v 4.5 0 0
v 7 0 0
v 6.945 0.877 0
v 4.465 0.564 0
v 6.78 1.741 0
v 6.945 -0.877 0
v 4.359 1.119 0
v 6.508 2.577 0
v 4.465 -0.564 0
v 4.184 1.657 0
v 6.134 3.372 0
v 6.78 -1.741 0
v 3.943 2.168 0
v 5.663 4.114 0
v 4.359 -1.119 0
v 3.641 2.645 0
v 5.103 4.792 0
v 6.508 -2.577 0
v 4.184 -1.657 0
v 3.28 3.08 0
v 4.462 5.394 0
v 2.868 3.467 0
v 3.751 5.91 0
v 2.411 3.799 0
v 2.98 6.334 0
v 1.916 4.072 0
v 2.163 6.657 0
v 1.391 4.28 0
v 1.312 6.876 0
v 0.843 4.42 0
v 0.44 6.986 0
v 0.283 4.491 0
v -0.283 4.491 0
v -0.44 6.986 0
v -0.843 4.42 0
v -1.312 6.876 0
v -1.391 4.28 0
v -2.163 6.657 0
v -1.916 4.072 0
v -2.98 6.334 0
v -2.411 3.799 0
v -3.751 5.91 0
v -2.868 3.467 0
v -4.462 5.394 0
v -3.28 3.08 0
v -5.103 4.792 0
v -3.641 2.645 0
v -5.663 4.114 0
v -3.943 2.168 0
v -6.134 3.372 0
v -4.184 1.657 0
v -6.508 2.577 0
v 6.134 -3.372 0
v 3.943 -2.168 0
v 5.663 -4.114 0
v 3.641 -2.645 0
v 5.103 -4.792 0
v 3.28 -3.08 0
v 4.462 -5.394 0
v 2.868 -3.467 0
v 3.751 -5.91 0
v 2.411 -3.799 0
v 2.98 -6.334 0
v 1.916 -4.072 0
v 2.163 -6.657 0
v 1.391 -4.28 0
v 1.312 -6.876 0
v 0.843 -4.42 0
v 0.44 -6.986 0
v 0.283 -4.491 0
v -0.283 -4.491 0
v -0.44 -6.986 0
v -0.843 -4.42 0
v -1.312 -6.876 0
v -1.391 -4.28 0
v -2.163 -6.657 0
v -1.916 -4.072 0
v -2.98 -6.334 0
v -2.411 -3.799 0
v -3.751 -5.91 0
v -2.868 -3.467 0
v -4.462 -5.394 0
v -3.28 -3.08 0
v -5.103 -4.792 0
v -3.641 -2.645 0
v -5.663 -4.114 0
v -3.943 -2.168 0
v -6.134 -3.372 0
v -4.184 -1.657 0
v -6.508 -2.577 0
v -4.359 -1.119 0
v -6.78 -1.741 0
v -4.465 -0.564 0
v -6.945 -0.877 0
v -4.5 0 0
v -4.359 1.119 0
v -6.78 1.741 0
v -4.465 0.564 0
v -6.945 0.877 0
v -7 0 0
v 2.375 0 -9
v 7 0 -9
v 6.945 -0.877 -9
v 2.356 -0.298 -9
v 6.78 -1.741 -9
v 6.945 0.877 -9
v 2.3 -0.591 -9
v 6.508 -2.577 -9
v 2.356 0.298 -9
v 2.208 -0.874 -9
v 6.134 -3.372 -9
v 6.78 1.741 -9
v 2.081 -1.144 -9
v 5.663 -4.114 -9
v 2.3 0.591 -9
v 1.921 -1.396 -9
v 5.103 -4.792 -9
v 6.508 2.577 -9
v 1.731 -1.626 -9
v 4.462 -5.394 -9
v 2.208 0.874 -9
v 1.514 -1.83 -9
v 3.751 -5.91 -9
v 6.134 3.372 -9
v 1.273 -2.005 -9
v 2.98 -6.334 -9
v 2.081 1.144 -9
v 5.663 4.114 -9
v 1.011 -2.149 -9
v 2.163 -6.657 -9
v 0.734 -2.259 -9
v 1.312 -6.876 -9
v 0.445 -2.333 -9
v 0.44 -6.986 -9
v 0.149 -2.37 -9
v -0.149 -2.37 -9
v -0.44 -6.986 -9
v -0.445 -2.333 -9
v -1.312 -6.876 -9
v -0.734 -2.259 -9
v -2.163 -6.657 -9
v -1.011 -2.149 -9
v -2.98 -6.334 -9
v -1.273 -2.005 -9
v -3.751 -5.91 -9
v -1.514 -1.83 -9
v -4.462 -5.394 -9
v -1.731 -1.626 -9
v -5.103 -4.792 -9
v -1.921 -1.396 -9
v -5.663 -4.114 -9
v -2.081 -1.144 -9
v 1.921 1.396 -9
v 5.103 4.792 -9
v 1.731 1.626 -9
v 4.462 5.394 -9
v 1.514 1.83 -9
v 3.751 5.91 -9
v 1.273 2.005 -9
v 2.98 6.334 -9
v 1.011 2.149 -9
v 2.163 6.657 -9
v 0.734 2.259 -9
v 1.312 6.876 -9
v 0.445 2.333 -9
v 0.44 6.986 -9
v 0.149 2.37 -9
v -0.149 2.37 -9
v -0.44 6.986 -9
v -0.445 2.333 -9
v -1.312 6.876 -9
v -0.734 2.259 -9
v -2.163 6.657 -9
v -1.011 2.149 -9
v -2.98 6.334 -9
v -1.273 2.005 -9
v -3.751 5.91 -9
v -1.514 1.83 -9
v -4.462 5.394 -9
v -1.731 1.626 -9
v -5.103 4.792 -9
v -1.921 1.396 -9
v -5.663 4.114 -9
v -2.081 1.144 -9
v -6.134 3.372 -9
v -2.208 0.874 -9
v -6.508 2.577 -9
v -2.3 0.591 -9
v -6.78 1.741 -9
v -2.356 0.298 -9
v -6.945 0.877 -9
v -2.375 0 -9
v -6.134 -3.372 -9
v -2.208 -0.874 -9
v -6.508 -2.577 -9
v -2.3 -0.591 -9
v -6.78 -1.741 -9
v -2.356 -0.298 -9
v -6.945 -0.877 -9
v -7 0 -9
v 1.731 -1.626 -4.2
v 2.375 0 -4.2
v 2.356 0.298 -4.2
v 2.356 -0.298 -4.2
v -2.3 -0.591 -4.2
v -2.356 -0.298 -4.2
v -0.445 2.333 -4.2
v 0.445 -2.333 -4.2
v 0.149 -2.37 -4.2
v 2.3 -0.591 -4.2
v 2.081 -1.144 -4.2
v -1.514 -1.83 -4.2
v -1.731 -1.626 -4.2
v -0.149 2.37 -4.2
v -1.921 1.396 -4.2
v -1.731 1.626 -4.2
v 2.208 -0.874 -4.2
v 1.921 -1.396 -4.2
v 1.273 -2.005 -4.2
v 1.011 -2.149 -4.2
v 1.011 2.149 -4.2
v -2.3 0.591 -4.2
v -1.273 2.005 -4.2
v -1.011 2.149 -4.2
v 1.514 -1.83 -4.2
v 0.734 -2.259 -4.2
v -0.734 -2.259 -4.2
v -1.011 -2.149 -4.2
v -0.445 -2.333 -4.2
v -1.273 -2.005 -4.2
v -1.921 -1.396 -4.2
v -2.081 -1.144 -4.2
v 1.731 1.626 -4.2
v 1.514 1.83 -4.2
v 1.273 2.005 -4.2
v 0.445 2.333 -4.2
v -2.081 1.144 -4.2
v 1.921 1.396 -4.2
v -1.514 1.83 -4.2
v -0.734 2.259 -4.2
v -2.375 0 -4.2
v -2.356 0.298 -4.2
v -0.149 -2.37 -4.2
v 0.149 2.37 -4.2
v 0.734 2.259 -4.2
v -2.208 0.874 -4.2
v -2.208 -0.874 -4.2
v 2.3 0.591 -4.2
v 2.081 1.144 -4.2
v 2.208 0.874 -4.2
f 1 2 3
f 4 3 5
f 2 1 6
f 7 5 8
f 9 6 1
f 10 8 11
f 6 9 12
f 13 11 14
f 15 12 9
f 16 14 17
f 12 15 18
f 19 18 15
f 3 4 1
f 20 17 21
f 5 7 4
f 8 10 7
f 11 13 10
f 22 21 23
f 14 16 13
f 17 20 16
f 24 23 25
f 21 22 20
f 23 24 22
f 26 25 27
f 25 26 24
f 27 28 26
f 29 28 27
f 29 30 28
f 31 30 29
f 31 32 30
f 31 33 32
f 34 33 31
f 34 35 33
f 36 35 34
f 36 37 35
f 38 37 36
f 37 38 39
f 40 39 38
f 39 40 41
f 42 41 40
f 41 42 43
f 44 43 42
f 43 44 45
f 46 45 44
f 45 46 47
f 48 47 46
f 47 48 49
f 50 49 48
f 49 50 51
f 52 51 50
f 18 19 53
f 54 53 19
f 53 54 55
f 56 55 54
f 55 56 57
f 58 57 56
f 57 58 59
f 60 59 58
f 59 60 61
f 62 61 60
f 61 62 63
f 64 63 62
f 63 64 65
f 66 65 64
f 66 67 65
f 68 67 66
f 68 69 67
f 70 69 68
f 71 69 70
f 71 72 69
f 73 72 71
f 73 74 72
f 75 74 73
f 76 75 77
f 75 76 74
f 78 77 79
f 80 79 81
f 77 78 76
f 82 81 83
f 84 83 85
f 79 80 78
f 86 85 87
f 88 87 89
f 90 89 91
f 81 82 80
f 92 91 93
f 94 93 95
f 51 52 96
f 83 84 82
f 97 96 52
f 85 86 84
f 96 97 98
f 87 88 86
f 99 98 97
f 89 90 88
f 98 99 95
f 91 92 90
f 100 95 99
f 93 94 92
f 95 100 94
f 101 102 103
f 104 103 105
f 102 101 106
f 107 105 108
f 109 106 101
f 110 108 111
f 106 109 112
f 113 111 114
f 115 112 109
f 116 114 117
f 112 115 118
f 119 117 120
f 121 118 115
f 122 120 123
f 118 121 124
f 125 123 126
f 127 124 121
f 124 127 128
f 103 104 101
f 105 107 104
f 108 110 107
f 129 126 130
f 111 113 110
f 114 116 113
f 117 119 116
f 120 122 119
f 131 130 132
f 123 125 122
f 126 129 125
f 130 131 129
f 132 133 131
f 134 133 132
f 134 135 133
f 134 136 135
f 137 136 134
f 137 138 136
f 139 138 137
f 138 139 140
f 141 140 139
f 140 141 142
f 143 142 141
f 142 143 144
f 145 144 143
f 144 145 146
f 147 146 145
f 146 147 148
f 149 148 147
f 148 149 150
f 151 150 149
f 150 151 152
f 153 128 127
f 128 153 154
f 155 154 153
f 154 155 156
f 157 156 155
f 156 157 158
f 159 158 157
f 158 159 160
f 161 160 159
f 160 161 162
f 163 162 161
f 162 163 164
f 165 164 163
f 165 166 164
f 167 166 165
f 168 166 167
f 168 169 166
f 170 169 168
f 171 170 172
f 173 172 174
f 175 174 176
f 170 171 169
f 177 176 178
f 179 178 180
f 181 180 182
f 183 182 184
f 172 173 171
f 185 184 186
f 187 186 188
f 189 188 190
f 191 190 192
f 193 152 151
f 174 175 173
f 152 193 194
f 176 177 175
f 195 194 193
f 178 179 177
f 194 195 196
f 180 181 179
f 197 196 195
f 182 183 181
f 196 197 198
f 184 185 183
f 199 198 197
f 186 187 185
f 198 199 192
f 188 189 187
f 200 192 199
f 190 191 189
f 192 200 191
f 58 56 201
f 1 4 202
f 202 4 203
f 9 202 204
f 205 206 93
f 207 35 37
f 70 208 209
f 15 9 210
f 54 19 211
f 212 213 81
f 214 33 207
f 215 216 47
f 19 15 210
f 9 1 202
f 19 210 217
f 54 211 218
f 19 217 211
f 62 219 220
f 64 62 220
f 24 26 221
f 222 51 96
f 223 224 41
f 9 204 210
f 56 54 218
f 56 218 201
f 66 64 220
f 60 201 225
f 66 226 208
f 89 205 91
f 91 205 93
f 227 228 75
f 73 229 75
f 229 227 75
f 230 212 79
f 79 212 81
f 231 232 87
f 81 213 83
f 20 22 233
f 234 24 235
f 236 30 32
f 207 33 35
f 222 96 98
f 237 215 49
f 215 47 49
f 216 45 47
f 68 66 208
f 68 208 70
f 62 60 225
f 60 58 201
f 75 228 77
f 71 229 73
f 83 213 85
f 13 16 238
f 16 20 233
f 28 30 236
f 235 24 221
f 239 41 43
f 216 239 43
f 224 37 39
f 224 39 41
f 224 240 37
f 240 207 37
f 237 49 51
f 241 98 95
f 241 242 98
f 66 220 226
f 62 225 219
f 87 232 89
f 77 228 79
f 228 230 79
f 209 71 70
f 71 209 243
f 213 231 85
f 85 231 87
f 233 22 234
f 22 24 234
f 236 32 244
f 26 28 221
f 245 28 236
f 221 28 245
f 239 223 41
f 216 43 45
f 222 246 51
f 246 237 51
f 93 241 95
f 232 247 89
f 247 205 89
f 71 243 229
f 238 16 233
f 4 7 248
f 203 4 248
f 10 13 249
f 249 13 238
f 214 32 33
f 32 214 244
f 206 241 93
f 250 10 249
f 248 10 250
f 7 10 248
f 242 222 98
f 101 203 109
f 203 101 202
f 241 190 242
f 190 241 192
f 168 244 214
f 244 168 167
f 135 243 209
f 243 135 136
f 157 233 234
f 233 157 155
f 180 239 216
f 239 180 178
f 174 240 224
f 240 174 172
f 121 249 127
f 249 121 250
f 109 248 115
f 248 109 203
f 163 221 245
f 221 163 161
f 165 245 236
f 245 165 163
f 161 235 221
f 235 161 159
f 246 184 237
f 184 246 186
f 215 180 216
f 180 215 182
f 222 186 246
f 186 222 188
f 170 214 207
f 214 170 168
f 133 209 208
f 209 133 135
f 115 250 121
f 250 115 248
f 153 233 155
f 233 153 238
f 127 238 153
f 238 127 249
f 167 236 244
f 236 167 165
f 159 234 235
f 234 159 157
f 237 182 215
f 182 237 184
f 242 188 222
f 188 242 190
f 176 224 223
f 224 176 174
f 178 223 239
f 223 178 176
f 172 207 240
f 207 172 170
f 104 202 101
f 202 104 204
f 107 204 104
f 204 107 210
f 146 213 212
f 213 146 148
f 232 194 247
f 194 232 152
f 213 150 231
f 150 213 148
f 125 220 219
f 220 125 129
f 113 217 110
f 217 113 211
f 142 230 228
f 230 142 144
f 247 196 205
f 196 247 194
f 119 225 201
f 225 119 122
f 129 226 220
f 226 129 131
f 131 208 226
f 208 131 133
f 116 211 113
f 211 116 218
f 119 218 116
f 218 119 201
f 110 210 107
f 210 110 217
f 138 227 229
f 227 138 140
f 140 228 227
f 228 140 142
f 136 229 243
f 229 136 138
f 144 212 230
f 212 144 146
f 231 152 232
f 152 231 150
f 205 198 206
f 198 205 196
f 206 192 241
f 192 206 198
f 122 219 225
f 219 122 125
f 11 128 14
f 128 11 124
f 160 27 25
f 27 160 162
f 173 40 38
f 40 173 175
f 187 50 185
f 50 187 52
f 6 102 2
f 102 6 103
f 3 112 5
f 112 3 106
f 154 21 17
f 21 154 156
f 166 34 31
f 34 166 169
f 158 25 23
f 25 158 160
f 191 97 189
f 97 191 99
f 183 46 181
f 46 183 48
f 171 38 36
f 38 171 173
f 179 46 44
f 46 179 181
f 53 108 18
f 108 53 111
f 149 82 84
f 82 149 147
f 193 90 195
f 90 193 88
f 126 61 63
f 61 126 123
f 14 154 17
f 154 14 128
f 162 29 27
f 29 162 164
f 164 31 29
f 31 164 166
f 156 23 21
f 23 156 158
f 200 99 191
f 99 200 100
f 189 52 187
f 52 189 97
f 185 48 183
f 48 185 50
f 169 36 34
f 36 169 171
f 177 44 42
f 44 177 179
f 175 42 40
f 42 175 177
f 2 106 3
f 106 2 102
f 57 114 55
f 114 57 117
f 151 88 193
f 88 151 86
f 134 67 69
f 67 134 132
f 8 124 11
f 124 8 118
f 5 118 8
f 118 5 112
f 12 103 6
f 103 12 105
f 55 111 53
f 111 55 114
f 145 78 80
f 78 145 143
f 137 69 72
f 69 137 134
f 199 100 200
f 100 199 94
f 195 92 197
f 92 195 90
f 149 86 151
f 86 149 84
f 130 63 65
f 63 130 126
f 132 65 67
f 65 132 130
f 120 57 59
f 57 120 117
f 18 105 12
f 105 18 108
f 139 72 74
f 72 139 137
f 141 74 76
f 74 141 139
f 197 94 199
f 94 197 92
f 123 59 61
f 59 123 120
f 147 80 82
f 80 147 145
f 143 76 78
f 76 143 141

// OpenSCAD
$fn = 50;


difference() {
	union() {
		translate(v = [0, 0, -9.0000000000]) {
			cylinder(h = 9, r = 7.0000000000);
		}
	}
	union() {
		translate(v = [0, 0, 0]) {
			rotate(a = [0, 0, 0]) {
				difference() {
					union() {
						#translate(v = [0, 0, -9.0000000000]) {
							cylinder(h = 9, r = 2.2500000000);
						}
						#translate(v = [0, 0, -4.2000000000]) {
							cylinder(h = 4.2000000000, r1 = 2.3750000000, r2 = 4.5000000000);
						}
						#translate(v = [0, 0, -9.0000000000]) {
							cylinder(h = 9, r = 2.3750000000);
						}
						#translate(v = [0, 0, -9.0000000000]) {
							cylinder(h = 9, r = 2.2500000000);
						}
					}
					union();
				}
			}
		}
	}
}
